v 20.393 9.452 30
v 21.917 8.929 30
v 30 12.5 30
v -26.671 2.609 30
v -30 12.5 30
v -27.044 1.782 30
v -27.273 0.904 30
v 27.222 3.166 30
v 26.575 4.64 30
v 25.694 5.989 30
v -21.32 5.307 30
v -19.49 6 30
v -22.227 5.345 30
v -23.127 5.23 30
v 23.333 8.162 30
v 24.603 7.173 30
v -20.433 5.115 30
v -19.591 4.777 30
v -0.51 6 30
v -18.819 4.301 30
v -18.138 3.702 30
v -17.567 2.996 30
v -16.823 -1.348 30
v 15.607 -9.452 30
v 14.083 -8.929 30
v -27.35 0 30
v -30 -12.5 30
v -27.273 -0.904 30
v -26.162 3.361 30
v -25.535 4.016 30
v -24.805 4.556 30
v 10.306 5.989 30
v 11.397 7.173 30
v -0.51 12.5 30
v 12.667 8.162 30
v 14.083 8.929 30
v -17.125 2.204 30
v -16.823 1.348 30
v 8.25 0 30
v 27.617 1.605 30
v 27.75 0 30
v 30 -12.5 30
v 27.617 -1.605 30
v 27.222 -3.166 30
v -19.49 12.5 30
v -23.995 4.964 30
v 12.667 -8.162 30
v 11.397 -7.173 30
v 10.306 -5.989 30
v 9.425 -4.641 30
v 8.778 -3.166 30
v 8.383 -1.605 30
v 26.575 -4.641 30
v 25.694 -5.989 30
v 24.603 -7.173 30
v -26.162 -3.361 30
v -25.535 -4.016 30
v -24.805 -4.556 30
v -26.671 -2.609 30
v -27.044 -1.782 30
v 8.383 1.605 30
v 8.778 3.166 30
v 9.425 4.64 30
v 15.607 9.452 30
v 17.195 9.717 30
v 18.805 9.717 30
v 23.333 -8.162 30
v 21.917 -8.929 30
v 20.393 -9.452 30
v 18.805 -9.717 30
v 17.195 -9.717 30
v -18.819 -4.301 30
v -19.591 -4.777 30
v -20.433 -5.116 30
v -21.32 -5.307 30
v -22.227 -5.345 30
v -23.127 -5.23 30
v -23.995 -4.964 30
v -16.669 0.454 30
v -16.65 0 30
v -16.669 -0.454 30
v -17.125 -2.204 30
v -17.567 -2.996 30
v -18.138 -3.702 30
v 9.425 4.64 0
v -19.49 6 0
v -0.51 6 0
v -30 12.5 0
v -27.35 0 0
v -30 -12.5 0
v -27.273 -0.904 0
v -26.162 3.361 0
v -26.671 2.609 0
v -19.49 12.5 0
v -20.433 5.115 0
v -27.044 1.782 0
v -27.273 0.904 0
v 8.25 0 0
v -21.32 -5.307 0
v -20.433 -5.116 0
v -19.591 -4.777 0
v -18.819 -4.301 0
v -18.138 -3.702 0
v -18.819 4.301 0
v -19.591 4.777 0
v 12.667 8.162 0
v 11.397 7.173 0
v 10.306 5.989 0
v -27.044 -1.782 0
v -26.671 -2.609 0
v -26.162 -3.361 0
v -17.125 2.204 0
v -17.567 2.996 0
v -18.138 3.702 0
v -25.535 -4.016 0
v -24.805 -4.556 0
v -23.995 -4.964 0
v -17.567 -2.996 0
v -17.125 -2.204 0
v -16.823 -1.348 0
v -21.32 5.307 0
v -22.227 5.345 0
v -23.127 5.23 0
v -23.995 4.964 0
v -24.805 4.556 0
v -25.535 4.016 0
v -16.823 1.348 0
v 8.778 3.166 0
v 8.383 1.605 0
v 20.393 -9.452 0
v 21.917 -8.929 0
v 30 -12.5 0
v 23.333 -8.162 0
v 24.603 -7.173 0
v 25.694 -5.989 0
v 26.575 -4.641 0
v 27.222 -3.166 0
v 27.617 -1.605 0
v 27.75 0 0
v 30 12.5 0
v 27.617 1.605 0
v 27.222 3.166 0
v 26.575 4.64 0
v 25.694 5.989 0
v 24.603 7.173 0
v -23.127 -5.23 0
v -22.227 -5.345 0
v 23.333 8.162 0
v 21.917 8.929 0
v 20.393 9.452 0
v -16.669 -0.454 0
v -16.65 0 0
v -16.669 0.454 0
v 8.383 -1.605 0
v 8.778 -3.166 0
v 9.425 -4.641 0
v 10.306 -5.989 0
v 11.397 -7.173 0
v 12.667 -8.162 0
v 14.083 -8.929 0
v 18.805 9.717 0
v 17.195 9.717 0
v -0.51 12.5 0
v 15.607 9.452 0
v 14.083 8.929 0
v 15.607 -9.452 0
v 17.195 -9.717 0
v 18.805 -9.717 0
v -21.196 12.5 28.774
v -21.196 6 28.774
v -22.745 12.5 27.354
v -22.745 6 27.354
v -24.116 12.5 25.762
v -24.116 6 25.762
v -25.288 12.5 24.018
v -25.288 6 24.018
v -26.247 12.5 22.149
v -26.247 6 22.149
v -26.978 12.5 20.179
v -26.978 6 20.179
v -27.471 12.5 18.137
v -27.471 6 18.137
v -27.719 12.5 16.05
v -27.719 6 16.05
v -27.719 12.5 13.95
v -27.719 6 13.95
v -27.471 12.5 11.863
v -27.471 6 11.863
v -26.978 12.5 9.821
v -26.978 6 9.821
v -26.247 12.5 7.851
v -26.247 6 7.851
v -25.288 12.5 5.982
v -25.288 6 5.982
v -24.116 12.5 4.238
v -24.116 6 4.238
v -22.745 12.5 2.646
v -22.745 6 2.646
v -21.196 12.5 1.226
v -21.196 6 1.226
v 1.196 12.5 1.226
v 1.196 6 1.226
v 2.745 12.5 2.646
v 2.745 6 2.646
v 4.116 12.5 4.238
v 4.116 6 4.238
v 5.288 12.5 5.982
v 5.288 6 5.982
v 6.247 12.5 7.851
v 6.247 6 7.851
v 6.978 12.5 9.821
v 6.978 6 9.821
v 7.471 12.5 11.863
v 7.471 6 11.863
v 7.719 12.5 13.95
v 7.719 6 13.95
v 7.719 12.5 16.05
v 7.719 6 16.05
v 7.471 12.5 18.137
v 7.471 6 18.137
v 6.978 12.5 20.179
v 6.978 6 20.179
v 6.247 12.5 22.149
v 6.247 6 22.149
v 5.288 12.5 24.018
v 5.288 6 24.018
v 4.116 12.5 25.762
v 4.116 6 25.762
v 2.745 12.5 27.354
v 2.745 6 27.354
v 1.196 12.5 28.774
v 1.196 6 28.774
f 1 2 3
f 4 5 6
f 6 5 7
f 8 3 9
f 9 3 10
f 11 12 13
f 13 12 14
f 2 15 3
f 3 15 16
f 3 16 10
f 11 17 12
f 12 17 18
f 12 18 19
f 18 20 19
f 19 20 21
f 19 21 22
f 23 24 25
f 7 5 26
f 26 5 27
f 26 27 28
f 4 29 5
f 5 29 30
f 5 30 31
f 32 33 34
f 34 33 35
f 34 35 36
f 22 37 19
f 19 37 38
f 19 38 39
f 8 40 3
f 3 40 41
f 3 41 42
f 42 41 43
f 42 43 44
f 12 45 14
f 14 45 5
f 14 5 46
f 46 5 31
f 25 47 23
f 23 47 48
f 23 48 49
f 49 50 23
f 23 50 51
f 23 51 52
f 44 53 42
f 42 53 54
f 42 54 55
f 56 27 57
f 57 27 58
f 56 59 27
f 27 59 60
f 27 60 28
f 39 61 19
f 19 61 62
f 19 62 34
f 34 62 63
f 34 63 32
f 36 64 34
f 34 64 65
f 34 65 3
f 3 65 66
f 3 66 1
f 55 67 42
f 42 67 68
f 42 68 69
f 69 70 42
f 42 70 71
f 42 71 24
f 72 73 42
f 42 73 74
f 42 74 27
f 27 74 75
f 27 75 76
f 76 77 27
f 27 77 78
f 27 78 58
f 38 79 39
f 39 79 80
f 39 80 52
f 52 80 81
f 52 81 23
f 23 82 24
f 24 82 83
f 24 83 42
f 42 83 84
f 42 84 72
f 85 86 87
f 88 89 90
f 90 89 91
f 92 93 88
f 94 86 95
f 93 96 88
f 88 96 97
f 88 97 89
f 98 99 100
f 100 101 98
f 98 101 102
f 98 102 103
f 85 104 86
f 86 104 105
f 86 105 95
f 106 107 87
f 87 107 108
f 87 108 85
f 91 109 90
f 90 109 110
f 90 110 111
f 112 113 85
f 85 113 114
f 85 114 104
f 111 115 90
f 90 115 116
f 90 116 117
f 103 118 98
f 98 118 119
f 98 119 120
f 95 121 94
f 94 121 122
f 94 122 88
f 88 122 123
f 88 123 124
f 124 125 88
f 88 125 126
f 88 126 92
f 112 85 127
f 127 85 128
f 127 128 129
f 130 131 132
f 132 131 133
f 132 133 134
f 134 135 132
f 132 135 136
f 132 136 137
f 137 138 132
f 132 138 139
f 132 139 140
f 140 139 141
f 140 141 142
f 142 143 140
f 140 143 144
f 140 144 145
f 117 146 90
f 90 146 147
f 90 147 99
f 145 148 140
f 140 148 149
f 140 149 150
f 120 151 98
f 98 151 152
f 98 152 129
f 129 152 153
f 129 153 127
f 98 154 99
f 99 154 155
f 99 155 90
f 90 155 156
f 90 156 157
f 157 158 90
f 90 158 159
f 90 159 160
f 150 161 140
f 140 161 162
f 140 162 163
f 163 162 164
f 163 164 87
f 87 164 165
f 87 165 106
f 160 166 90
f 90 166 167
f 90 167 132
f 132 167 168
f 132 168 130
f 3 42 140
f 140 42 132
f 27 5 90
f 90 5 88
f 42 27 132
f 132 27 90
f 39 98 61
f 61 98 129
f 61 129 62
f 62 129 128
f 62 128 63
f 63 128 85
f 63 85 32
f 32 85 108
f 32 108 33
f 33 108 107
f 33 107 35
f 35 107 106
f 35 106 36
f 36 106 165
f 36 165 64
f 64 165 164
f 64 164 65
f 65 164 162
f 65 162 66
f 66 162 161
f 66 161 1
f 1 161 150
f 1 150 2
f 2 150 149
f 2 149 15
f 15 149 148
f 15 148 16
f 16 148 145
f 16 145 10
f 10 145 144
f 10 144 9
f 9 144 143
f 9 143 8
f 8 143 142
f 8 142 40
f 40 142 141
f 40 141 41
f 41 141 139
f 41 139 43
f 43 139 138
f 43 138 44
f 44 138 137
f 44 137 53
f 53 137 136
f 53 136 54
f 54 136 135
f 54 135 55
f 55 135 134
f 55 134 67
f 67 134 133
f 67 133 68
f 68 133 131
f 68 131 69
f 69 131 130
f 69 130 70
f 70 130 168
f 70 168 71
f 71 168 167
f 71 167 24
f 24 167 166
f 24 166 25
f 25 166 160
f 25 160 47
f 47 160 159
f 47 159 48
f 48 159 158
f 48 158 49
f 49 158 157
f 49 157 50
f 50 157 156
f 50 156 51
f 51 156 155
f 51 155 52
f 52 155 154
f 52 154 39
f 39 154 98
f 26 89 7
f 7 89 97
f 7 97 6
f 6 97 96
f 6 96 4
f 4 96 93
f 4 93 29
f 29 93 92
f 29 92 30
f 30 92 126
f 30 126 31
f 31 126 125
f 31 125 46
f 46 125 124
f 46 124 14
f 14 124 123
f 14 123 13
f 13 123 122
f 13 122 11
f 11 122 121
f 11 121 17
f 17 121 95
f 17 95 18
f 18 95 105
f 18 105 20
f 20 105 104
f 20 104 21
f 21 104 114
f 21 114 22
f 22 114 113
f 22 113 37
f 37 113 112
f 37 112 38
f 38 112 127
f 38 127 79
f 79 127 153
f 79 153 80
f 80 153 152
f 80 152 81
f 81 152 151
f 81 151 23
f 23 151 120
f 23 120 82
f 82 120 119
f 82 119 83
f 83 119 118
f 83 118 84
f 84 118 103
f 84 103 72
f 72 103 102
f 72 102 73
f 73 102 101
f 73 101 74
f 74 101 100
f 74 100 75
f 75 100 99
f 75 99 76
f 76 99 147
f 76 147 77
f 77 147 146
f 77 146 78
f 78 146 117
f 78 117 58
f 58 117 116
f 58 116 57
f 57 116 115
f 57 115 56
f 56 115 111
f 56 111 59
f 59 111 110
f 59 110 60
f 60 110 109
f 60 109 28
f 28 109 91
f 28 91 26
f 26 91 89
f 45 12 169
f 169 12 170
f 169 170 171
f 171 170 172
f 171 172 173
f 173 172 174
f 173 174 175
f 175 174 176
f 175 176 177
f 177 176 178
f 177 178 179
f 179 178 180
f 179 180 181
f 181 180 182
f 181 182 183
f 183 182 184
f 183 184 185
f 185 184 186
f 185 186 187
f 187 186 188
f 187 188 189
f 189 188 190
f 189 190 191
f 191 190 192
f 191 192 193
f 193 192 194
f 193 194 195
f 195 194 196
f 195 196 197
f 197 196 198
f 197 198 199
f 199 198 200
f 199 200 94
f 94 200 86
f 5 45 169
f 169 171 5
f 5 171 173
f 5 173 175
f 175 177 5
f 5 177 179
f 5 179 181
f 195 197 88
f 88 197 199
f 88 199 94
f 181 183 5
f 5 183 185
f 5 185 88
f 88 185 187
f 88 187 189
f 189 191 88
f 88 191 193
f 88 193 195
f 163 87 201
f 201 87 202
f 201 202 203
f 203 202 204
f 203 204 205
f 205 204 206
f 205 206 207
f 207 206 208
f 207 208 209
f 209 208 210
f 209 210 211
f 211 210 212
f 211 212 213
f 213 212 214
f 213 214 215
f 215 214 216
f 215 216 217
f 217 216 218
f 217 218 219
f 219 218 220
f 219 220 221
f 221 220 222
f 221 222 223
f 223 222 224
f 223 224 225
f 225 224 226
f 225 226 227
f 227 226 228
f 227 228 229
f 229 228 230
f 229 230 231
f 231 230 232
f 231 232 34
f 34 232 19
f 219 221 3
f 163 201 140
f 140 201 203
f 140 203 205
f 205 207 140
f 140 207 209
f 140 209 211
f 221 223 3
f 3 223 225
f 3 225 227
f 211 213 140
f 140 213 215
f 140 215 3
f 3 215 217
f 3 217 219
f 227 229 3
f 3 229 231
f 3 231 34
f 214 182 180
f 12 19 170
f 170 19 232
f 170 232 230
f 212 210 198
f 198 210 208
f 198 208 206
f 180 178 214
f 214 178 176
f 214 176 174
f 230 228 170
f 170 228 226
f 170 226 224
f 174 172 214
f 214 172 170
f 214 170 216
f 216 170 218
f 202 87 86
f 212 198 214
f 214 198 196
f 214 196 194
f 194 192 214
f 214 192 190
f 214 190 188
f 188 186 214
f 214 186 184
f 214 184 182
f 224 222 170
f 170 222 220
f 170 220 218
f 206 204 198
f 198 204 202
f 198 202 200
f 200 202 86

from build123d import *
from build123d.topology import SkipClean

# Parameters (mm, degrees)
SKETCH1_W           = 60
SKETCH1_H           = 25
SKETCH1_R           = 9.75
SKETCH1_R_2         = 5.35
BOSS_EXTRUDE1_DEPTH = 30
BOSS_EXTRUDE2_DEPTH = 0.0001
CUT_EXTRUDE1_START  = -6.5
SKETCH2_3_R         = 17.75
CUT_EXTRUDE1_DEPTH  = 6.5


with BuildPart() as part:
    # Sketch1 → Boss-Extrude1 (new body)
    with BuildSketch(Plane.XY):
        Rectangle(SKETCH1_W, SKETCH1_H)
        with Locations((18, 0)):
            Circle(SKETCH1_R, mode=Mode.SUBTRACT)
        with Locations((-22, 0)):
            Circle(SKETCH1_R_2, mode=Mode.SUBTRACT)
    extrude(amount=BOSS_EXTRUDE1_DEPTH)

    # Sketch2 → Boss-Extrude2 (add)
    with BuildSketch(Plane(origin=(0, 12.5, 0), x_dir=(1, 0, 0), z_dir=(0, 1, 0))):
        with BuildLine():
            ThreePointArc((-0.509873552, 0), (7.75, -15), (-0.509873552, -30))
            Line((-0.509873552, -30), (30, -30))
            Line((30, -30), (30, 0))
            Line((30, 0), (-0.509873552, 0))
        make_face()
        with BuildLine():
            ThreePointArc((-19.490126448, -30), (-27.75, -15), (-19.490126448, 0))
            Line((-19.490126448, 0), (-30, 0))
            Line((-30, 0), (-30, -30))
            Line((-30, -30), (-19.490126448, -30))
        make_face()
    extrude(amount=BOSS_EXTRUDE2_DEPTH)

    # Sketch2<3> → Cut-Extrude1 (cut)
    with SkipClean():  # the faces are left unmerged after this step: merging them gives an invalid solid
        with BuildSketch(Plane(origin=(0, 12.5, 0), x_dir=(1, 0, 0), z_dir=(0, 1, 0)).offset(CUT_EXTRUDE1_START)):
            with Locations((-10, -15)):
                Circle(SKETCH2_3_R)
        extrude(amount=CUT_EXTRUDE1_DEPTH, mode=Mode.SUBTRACT)


solid = part.part
